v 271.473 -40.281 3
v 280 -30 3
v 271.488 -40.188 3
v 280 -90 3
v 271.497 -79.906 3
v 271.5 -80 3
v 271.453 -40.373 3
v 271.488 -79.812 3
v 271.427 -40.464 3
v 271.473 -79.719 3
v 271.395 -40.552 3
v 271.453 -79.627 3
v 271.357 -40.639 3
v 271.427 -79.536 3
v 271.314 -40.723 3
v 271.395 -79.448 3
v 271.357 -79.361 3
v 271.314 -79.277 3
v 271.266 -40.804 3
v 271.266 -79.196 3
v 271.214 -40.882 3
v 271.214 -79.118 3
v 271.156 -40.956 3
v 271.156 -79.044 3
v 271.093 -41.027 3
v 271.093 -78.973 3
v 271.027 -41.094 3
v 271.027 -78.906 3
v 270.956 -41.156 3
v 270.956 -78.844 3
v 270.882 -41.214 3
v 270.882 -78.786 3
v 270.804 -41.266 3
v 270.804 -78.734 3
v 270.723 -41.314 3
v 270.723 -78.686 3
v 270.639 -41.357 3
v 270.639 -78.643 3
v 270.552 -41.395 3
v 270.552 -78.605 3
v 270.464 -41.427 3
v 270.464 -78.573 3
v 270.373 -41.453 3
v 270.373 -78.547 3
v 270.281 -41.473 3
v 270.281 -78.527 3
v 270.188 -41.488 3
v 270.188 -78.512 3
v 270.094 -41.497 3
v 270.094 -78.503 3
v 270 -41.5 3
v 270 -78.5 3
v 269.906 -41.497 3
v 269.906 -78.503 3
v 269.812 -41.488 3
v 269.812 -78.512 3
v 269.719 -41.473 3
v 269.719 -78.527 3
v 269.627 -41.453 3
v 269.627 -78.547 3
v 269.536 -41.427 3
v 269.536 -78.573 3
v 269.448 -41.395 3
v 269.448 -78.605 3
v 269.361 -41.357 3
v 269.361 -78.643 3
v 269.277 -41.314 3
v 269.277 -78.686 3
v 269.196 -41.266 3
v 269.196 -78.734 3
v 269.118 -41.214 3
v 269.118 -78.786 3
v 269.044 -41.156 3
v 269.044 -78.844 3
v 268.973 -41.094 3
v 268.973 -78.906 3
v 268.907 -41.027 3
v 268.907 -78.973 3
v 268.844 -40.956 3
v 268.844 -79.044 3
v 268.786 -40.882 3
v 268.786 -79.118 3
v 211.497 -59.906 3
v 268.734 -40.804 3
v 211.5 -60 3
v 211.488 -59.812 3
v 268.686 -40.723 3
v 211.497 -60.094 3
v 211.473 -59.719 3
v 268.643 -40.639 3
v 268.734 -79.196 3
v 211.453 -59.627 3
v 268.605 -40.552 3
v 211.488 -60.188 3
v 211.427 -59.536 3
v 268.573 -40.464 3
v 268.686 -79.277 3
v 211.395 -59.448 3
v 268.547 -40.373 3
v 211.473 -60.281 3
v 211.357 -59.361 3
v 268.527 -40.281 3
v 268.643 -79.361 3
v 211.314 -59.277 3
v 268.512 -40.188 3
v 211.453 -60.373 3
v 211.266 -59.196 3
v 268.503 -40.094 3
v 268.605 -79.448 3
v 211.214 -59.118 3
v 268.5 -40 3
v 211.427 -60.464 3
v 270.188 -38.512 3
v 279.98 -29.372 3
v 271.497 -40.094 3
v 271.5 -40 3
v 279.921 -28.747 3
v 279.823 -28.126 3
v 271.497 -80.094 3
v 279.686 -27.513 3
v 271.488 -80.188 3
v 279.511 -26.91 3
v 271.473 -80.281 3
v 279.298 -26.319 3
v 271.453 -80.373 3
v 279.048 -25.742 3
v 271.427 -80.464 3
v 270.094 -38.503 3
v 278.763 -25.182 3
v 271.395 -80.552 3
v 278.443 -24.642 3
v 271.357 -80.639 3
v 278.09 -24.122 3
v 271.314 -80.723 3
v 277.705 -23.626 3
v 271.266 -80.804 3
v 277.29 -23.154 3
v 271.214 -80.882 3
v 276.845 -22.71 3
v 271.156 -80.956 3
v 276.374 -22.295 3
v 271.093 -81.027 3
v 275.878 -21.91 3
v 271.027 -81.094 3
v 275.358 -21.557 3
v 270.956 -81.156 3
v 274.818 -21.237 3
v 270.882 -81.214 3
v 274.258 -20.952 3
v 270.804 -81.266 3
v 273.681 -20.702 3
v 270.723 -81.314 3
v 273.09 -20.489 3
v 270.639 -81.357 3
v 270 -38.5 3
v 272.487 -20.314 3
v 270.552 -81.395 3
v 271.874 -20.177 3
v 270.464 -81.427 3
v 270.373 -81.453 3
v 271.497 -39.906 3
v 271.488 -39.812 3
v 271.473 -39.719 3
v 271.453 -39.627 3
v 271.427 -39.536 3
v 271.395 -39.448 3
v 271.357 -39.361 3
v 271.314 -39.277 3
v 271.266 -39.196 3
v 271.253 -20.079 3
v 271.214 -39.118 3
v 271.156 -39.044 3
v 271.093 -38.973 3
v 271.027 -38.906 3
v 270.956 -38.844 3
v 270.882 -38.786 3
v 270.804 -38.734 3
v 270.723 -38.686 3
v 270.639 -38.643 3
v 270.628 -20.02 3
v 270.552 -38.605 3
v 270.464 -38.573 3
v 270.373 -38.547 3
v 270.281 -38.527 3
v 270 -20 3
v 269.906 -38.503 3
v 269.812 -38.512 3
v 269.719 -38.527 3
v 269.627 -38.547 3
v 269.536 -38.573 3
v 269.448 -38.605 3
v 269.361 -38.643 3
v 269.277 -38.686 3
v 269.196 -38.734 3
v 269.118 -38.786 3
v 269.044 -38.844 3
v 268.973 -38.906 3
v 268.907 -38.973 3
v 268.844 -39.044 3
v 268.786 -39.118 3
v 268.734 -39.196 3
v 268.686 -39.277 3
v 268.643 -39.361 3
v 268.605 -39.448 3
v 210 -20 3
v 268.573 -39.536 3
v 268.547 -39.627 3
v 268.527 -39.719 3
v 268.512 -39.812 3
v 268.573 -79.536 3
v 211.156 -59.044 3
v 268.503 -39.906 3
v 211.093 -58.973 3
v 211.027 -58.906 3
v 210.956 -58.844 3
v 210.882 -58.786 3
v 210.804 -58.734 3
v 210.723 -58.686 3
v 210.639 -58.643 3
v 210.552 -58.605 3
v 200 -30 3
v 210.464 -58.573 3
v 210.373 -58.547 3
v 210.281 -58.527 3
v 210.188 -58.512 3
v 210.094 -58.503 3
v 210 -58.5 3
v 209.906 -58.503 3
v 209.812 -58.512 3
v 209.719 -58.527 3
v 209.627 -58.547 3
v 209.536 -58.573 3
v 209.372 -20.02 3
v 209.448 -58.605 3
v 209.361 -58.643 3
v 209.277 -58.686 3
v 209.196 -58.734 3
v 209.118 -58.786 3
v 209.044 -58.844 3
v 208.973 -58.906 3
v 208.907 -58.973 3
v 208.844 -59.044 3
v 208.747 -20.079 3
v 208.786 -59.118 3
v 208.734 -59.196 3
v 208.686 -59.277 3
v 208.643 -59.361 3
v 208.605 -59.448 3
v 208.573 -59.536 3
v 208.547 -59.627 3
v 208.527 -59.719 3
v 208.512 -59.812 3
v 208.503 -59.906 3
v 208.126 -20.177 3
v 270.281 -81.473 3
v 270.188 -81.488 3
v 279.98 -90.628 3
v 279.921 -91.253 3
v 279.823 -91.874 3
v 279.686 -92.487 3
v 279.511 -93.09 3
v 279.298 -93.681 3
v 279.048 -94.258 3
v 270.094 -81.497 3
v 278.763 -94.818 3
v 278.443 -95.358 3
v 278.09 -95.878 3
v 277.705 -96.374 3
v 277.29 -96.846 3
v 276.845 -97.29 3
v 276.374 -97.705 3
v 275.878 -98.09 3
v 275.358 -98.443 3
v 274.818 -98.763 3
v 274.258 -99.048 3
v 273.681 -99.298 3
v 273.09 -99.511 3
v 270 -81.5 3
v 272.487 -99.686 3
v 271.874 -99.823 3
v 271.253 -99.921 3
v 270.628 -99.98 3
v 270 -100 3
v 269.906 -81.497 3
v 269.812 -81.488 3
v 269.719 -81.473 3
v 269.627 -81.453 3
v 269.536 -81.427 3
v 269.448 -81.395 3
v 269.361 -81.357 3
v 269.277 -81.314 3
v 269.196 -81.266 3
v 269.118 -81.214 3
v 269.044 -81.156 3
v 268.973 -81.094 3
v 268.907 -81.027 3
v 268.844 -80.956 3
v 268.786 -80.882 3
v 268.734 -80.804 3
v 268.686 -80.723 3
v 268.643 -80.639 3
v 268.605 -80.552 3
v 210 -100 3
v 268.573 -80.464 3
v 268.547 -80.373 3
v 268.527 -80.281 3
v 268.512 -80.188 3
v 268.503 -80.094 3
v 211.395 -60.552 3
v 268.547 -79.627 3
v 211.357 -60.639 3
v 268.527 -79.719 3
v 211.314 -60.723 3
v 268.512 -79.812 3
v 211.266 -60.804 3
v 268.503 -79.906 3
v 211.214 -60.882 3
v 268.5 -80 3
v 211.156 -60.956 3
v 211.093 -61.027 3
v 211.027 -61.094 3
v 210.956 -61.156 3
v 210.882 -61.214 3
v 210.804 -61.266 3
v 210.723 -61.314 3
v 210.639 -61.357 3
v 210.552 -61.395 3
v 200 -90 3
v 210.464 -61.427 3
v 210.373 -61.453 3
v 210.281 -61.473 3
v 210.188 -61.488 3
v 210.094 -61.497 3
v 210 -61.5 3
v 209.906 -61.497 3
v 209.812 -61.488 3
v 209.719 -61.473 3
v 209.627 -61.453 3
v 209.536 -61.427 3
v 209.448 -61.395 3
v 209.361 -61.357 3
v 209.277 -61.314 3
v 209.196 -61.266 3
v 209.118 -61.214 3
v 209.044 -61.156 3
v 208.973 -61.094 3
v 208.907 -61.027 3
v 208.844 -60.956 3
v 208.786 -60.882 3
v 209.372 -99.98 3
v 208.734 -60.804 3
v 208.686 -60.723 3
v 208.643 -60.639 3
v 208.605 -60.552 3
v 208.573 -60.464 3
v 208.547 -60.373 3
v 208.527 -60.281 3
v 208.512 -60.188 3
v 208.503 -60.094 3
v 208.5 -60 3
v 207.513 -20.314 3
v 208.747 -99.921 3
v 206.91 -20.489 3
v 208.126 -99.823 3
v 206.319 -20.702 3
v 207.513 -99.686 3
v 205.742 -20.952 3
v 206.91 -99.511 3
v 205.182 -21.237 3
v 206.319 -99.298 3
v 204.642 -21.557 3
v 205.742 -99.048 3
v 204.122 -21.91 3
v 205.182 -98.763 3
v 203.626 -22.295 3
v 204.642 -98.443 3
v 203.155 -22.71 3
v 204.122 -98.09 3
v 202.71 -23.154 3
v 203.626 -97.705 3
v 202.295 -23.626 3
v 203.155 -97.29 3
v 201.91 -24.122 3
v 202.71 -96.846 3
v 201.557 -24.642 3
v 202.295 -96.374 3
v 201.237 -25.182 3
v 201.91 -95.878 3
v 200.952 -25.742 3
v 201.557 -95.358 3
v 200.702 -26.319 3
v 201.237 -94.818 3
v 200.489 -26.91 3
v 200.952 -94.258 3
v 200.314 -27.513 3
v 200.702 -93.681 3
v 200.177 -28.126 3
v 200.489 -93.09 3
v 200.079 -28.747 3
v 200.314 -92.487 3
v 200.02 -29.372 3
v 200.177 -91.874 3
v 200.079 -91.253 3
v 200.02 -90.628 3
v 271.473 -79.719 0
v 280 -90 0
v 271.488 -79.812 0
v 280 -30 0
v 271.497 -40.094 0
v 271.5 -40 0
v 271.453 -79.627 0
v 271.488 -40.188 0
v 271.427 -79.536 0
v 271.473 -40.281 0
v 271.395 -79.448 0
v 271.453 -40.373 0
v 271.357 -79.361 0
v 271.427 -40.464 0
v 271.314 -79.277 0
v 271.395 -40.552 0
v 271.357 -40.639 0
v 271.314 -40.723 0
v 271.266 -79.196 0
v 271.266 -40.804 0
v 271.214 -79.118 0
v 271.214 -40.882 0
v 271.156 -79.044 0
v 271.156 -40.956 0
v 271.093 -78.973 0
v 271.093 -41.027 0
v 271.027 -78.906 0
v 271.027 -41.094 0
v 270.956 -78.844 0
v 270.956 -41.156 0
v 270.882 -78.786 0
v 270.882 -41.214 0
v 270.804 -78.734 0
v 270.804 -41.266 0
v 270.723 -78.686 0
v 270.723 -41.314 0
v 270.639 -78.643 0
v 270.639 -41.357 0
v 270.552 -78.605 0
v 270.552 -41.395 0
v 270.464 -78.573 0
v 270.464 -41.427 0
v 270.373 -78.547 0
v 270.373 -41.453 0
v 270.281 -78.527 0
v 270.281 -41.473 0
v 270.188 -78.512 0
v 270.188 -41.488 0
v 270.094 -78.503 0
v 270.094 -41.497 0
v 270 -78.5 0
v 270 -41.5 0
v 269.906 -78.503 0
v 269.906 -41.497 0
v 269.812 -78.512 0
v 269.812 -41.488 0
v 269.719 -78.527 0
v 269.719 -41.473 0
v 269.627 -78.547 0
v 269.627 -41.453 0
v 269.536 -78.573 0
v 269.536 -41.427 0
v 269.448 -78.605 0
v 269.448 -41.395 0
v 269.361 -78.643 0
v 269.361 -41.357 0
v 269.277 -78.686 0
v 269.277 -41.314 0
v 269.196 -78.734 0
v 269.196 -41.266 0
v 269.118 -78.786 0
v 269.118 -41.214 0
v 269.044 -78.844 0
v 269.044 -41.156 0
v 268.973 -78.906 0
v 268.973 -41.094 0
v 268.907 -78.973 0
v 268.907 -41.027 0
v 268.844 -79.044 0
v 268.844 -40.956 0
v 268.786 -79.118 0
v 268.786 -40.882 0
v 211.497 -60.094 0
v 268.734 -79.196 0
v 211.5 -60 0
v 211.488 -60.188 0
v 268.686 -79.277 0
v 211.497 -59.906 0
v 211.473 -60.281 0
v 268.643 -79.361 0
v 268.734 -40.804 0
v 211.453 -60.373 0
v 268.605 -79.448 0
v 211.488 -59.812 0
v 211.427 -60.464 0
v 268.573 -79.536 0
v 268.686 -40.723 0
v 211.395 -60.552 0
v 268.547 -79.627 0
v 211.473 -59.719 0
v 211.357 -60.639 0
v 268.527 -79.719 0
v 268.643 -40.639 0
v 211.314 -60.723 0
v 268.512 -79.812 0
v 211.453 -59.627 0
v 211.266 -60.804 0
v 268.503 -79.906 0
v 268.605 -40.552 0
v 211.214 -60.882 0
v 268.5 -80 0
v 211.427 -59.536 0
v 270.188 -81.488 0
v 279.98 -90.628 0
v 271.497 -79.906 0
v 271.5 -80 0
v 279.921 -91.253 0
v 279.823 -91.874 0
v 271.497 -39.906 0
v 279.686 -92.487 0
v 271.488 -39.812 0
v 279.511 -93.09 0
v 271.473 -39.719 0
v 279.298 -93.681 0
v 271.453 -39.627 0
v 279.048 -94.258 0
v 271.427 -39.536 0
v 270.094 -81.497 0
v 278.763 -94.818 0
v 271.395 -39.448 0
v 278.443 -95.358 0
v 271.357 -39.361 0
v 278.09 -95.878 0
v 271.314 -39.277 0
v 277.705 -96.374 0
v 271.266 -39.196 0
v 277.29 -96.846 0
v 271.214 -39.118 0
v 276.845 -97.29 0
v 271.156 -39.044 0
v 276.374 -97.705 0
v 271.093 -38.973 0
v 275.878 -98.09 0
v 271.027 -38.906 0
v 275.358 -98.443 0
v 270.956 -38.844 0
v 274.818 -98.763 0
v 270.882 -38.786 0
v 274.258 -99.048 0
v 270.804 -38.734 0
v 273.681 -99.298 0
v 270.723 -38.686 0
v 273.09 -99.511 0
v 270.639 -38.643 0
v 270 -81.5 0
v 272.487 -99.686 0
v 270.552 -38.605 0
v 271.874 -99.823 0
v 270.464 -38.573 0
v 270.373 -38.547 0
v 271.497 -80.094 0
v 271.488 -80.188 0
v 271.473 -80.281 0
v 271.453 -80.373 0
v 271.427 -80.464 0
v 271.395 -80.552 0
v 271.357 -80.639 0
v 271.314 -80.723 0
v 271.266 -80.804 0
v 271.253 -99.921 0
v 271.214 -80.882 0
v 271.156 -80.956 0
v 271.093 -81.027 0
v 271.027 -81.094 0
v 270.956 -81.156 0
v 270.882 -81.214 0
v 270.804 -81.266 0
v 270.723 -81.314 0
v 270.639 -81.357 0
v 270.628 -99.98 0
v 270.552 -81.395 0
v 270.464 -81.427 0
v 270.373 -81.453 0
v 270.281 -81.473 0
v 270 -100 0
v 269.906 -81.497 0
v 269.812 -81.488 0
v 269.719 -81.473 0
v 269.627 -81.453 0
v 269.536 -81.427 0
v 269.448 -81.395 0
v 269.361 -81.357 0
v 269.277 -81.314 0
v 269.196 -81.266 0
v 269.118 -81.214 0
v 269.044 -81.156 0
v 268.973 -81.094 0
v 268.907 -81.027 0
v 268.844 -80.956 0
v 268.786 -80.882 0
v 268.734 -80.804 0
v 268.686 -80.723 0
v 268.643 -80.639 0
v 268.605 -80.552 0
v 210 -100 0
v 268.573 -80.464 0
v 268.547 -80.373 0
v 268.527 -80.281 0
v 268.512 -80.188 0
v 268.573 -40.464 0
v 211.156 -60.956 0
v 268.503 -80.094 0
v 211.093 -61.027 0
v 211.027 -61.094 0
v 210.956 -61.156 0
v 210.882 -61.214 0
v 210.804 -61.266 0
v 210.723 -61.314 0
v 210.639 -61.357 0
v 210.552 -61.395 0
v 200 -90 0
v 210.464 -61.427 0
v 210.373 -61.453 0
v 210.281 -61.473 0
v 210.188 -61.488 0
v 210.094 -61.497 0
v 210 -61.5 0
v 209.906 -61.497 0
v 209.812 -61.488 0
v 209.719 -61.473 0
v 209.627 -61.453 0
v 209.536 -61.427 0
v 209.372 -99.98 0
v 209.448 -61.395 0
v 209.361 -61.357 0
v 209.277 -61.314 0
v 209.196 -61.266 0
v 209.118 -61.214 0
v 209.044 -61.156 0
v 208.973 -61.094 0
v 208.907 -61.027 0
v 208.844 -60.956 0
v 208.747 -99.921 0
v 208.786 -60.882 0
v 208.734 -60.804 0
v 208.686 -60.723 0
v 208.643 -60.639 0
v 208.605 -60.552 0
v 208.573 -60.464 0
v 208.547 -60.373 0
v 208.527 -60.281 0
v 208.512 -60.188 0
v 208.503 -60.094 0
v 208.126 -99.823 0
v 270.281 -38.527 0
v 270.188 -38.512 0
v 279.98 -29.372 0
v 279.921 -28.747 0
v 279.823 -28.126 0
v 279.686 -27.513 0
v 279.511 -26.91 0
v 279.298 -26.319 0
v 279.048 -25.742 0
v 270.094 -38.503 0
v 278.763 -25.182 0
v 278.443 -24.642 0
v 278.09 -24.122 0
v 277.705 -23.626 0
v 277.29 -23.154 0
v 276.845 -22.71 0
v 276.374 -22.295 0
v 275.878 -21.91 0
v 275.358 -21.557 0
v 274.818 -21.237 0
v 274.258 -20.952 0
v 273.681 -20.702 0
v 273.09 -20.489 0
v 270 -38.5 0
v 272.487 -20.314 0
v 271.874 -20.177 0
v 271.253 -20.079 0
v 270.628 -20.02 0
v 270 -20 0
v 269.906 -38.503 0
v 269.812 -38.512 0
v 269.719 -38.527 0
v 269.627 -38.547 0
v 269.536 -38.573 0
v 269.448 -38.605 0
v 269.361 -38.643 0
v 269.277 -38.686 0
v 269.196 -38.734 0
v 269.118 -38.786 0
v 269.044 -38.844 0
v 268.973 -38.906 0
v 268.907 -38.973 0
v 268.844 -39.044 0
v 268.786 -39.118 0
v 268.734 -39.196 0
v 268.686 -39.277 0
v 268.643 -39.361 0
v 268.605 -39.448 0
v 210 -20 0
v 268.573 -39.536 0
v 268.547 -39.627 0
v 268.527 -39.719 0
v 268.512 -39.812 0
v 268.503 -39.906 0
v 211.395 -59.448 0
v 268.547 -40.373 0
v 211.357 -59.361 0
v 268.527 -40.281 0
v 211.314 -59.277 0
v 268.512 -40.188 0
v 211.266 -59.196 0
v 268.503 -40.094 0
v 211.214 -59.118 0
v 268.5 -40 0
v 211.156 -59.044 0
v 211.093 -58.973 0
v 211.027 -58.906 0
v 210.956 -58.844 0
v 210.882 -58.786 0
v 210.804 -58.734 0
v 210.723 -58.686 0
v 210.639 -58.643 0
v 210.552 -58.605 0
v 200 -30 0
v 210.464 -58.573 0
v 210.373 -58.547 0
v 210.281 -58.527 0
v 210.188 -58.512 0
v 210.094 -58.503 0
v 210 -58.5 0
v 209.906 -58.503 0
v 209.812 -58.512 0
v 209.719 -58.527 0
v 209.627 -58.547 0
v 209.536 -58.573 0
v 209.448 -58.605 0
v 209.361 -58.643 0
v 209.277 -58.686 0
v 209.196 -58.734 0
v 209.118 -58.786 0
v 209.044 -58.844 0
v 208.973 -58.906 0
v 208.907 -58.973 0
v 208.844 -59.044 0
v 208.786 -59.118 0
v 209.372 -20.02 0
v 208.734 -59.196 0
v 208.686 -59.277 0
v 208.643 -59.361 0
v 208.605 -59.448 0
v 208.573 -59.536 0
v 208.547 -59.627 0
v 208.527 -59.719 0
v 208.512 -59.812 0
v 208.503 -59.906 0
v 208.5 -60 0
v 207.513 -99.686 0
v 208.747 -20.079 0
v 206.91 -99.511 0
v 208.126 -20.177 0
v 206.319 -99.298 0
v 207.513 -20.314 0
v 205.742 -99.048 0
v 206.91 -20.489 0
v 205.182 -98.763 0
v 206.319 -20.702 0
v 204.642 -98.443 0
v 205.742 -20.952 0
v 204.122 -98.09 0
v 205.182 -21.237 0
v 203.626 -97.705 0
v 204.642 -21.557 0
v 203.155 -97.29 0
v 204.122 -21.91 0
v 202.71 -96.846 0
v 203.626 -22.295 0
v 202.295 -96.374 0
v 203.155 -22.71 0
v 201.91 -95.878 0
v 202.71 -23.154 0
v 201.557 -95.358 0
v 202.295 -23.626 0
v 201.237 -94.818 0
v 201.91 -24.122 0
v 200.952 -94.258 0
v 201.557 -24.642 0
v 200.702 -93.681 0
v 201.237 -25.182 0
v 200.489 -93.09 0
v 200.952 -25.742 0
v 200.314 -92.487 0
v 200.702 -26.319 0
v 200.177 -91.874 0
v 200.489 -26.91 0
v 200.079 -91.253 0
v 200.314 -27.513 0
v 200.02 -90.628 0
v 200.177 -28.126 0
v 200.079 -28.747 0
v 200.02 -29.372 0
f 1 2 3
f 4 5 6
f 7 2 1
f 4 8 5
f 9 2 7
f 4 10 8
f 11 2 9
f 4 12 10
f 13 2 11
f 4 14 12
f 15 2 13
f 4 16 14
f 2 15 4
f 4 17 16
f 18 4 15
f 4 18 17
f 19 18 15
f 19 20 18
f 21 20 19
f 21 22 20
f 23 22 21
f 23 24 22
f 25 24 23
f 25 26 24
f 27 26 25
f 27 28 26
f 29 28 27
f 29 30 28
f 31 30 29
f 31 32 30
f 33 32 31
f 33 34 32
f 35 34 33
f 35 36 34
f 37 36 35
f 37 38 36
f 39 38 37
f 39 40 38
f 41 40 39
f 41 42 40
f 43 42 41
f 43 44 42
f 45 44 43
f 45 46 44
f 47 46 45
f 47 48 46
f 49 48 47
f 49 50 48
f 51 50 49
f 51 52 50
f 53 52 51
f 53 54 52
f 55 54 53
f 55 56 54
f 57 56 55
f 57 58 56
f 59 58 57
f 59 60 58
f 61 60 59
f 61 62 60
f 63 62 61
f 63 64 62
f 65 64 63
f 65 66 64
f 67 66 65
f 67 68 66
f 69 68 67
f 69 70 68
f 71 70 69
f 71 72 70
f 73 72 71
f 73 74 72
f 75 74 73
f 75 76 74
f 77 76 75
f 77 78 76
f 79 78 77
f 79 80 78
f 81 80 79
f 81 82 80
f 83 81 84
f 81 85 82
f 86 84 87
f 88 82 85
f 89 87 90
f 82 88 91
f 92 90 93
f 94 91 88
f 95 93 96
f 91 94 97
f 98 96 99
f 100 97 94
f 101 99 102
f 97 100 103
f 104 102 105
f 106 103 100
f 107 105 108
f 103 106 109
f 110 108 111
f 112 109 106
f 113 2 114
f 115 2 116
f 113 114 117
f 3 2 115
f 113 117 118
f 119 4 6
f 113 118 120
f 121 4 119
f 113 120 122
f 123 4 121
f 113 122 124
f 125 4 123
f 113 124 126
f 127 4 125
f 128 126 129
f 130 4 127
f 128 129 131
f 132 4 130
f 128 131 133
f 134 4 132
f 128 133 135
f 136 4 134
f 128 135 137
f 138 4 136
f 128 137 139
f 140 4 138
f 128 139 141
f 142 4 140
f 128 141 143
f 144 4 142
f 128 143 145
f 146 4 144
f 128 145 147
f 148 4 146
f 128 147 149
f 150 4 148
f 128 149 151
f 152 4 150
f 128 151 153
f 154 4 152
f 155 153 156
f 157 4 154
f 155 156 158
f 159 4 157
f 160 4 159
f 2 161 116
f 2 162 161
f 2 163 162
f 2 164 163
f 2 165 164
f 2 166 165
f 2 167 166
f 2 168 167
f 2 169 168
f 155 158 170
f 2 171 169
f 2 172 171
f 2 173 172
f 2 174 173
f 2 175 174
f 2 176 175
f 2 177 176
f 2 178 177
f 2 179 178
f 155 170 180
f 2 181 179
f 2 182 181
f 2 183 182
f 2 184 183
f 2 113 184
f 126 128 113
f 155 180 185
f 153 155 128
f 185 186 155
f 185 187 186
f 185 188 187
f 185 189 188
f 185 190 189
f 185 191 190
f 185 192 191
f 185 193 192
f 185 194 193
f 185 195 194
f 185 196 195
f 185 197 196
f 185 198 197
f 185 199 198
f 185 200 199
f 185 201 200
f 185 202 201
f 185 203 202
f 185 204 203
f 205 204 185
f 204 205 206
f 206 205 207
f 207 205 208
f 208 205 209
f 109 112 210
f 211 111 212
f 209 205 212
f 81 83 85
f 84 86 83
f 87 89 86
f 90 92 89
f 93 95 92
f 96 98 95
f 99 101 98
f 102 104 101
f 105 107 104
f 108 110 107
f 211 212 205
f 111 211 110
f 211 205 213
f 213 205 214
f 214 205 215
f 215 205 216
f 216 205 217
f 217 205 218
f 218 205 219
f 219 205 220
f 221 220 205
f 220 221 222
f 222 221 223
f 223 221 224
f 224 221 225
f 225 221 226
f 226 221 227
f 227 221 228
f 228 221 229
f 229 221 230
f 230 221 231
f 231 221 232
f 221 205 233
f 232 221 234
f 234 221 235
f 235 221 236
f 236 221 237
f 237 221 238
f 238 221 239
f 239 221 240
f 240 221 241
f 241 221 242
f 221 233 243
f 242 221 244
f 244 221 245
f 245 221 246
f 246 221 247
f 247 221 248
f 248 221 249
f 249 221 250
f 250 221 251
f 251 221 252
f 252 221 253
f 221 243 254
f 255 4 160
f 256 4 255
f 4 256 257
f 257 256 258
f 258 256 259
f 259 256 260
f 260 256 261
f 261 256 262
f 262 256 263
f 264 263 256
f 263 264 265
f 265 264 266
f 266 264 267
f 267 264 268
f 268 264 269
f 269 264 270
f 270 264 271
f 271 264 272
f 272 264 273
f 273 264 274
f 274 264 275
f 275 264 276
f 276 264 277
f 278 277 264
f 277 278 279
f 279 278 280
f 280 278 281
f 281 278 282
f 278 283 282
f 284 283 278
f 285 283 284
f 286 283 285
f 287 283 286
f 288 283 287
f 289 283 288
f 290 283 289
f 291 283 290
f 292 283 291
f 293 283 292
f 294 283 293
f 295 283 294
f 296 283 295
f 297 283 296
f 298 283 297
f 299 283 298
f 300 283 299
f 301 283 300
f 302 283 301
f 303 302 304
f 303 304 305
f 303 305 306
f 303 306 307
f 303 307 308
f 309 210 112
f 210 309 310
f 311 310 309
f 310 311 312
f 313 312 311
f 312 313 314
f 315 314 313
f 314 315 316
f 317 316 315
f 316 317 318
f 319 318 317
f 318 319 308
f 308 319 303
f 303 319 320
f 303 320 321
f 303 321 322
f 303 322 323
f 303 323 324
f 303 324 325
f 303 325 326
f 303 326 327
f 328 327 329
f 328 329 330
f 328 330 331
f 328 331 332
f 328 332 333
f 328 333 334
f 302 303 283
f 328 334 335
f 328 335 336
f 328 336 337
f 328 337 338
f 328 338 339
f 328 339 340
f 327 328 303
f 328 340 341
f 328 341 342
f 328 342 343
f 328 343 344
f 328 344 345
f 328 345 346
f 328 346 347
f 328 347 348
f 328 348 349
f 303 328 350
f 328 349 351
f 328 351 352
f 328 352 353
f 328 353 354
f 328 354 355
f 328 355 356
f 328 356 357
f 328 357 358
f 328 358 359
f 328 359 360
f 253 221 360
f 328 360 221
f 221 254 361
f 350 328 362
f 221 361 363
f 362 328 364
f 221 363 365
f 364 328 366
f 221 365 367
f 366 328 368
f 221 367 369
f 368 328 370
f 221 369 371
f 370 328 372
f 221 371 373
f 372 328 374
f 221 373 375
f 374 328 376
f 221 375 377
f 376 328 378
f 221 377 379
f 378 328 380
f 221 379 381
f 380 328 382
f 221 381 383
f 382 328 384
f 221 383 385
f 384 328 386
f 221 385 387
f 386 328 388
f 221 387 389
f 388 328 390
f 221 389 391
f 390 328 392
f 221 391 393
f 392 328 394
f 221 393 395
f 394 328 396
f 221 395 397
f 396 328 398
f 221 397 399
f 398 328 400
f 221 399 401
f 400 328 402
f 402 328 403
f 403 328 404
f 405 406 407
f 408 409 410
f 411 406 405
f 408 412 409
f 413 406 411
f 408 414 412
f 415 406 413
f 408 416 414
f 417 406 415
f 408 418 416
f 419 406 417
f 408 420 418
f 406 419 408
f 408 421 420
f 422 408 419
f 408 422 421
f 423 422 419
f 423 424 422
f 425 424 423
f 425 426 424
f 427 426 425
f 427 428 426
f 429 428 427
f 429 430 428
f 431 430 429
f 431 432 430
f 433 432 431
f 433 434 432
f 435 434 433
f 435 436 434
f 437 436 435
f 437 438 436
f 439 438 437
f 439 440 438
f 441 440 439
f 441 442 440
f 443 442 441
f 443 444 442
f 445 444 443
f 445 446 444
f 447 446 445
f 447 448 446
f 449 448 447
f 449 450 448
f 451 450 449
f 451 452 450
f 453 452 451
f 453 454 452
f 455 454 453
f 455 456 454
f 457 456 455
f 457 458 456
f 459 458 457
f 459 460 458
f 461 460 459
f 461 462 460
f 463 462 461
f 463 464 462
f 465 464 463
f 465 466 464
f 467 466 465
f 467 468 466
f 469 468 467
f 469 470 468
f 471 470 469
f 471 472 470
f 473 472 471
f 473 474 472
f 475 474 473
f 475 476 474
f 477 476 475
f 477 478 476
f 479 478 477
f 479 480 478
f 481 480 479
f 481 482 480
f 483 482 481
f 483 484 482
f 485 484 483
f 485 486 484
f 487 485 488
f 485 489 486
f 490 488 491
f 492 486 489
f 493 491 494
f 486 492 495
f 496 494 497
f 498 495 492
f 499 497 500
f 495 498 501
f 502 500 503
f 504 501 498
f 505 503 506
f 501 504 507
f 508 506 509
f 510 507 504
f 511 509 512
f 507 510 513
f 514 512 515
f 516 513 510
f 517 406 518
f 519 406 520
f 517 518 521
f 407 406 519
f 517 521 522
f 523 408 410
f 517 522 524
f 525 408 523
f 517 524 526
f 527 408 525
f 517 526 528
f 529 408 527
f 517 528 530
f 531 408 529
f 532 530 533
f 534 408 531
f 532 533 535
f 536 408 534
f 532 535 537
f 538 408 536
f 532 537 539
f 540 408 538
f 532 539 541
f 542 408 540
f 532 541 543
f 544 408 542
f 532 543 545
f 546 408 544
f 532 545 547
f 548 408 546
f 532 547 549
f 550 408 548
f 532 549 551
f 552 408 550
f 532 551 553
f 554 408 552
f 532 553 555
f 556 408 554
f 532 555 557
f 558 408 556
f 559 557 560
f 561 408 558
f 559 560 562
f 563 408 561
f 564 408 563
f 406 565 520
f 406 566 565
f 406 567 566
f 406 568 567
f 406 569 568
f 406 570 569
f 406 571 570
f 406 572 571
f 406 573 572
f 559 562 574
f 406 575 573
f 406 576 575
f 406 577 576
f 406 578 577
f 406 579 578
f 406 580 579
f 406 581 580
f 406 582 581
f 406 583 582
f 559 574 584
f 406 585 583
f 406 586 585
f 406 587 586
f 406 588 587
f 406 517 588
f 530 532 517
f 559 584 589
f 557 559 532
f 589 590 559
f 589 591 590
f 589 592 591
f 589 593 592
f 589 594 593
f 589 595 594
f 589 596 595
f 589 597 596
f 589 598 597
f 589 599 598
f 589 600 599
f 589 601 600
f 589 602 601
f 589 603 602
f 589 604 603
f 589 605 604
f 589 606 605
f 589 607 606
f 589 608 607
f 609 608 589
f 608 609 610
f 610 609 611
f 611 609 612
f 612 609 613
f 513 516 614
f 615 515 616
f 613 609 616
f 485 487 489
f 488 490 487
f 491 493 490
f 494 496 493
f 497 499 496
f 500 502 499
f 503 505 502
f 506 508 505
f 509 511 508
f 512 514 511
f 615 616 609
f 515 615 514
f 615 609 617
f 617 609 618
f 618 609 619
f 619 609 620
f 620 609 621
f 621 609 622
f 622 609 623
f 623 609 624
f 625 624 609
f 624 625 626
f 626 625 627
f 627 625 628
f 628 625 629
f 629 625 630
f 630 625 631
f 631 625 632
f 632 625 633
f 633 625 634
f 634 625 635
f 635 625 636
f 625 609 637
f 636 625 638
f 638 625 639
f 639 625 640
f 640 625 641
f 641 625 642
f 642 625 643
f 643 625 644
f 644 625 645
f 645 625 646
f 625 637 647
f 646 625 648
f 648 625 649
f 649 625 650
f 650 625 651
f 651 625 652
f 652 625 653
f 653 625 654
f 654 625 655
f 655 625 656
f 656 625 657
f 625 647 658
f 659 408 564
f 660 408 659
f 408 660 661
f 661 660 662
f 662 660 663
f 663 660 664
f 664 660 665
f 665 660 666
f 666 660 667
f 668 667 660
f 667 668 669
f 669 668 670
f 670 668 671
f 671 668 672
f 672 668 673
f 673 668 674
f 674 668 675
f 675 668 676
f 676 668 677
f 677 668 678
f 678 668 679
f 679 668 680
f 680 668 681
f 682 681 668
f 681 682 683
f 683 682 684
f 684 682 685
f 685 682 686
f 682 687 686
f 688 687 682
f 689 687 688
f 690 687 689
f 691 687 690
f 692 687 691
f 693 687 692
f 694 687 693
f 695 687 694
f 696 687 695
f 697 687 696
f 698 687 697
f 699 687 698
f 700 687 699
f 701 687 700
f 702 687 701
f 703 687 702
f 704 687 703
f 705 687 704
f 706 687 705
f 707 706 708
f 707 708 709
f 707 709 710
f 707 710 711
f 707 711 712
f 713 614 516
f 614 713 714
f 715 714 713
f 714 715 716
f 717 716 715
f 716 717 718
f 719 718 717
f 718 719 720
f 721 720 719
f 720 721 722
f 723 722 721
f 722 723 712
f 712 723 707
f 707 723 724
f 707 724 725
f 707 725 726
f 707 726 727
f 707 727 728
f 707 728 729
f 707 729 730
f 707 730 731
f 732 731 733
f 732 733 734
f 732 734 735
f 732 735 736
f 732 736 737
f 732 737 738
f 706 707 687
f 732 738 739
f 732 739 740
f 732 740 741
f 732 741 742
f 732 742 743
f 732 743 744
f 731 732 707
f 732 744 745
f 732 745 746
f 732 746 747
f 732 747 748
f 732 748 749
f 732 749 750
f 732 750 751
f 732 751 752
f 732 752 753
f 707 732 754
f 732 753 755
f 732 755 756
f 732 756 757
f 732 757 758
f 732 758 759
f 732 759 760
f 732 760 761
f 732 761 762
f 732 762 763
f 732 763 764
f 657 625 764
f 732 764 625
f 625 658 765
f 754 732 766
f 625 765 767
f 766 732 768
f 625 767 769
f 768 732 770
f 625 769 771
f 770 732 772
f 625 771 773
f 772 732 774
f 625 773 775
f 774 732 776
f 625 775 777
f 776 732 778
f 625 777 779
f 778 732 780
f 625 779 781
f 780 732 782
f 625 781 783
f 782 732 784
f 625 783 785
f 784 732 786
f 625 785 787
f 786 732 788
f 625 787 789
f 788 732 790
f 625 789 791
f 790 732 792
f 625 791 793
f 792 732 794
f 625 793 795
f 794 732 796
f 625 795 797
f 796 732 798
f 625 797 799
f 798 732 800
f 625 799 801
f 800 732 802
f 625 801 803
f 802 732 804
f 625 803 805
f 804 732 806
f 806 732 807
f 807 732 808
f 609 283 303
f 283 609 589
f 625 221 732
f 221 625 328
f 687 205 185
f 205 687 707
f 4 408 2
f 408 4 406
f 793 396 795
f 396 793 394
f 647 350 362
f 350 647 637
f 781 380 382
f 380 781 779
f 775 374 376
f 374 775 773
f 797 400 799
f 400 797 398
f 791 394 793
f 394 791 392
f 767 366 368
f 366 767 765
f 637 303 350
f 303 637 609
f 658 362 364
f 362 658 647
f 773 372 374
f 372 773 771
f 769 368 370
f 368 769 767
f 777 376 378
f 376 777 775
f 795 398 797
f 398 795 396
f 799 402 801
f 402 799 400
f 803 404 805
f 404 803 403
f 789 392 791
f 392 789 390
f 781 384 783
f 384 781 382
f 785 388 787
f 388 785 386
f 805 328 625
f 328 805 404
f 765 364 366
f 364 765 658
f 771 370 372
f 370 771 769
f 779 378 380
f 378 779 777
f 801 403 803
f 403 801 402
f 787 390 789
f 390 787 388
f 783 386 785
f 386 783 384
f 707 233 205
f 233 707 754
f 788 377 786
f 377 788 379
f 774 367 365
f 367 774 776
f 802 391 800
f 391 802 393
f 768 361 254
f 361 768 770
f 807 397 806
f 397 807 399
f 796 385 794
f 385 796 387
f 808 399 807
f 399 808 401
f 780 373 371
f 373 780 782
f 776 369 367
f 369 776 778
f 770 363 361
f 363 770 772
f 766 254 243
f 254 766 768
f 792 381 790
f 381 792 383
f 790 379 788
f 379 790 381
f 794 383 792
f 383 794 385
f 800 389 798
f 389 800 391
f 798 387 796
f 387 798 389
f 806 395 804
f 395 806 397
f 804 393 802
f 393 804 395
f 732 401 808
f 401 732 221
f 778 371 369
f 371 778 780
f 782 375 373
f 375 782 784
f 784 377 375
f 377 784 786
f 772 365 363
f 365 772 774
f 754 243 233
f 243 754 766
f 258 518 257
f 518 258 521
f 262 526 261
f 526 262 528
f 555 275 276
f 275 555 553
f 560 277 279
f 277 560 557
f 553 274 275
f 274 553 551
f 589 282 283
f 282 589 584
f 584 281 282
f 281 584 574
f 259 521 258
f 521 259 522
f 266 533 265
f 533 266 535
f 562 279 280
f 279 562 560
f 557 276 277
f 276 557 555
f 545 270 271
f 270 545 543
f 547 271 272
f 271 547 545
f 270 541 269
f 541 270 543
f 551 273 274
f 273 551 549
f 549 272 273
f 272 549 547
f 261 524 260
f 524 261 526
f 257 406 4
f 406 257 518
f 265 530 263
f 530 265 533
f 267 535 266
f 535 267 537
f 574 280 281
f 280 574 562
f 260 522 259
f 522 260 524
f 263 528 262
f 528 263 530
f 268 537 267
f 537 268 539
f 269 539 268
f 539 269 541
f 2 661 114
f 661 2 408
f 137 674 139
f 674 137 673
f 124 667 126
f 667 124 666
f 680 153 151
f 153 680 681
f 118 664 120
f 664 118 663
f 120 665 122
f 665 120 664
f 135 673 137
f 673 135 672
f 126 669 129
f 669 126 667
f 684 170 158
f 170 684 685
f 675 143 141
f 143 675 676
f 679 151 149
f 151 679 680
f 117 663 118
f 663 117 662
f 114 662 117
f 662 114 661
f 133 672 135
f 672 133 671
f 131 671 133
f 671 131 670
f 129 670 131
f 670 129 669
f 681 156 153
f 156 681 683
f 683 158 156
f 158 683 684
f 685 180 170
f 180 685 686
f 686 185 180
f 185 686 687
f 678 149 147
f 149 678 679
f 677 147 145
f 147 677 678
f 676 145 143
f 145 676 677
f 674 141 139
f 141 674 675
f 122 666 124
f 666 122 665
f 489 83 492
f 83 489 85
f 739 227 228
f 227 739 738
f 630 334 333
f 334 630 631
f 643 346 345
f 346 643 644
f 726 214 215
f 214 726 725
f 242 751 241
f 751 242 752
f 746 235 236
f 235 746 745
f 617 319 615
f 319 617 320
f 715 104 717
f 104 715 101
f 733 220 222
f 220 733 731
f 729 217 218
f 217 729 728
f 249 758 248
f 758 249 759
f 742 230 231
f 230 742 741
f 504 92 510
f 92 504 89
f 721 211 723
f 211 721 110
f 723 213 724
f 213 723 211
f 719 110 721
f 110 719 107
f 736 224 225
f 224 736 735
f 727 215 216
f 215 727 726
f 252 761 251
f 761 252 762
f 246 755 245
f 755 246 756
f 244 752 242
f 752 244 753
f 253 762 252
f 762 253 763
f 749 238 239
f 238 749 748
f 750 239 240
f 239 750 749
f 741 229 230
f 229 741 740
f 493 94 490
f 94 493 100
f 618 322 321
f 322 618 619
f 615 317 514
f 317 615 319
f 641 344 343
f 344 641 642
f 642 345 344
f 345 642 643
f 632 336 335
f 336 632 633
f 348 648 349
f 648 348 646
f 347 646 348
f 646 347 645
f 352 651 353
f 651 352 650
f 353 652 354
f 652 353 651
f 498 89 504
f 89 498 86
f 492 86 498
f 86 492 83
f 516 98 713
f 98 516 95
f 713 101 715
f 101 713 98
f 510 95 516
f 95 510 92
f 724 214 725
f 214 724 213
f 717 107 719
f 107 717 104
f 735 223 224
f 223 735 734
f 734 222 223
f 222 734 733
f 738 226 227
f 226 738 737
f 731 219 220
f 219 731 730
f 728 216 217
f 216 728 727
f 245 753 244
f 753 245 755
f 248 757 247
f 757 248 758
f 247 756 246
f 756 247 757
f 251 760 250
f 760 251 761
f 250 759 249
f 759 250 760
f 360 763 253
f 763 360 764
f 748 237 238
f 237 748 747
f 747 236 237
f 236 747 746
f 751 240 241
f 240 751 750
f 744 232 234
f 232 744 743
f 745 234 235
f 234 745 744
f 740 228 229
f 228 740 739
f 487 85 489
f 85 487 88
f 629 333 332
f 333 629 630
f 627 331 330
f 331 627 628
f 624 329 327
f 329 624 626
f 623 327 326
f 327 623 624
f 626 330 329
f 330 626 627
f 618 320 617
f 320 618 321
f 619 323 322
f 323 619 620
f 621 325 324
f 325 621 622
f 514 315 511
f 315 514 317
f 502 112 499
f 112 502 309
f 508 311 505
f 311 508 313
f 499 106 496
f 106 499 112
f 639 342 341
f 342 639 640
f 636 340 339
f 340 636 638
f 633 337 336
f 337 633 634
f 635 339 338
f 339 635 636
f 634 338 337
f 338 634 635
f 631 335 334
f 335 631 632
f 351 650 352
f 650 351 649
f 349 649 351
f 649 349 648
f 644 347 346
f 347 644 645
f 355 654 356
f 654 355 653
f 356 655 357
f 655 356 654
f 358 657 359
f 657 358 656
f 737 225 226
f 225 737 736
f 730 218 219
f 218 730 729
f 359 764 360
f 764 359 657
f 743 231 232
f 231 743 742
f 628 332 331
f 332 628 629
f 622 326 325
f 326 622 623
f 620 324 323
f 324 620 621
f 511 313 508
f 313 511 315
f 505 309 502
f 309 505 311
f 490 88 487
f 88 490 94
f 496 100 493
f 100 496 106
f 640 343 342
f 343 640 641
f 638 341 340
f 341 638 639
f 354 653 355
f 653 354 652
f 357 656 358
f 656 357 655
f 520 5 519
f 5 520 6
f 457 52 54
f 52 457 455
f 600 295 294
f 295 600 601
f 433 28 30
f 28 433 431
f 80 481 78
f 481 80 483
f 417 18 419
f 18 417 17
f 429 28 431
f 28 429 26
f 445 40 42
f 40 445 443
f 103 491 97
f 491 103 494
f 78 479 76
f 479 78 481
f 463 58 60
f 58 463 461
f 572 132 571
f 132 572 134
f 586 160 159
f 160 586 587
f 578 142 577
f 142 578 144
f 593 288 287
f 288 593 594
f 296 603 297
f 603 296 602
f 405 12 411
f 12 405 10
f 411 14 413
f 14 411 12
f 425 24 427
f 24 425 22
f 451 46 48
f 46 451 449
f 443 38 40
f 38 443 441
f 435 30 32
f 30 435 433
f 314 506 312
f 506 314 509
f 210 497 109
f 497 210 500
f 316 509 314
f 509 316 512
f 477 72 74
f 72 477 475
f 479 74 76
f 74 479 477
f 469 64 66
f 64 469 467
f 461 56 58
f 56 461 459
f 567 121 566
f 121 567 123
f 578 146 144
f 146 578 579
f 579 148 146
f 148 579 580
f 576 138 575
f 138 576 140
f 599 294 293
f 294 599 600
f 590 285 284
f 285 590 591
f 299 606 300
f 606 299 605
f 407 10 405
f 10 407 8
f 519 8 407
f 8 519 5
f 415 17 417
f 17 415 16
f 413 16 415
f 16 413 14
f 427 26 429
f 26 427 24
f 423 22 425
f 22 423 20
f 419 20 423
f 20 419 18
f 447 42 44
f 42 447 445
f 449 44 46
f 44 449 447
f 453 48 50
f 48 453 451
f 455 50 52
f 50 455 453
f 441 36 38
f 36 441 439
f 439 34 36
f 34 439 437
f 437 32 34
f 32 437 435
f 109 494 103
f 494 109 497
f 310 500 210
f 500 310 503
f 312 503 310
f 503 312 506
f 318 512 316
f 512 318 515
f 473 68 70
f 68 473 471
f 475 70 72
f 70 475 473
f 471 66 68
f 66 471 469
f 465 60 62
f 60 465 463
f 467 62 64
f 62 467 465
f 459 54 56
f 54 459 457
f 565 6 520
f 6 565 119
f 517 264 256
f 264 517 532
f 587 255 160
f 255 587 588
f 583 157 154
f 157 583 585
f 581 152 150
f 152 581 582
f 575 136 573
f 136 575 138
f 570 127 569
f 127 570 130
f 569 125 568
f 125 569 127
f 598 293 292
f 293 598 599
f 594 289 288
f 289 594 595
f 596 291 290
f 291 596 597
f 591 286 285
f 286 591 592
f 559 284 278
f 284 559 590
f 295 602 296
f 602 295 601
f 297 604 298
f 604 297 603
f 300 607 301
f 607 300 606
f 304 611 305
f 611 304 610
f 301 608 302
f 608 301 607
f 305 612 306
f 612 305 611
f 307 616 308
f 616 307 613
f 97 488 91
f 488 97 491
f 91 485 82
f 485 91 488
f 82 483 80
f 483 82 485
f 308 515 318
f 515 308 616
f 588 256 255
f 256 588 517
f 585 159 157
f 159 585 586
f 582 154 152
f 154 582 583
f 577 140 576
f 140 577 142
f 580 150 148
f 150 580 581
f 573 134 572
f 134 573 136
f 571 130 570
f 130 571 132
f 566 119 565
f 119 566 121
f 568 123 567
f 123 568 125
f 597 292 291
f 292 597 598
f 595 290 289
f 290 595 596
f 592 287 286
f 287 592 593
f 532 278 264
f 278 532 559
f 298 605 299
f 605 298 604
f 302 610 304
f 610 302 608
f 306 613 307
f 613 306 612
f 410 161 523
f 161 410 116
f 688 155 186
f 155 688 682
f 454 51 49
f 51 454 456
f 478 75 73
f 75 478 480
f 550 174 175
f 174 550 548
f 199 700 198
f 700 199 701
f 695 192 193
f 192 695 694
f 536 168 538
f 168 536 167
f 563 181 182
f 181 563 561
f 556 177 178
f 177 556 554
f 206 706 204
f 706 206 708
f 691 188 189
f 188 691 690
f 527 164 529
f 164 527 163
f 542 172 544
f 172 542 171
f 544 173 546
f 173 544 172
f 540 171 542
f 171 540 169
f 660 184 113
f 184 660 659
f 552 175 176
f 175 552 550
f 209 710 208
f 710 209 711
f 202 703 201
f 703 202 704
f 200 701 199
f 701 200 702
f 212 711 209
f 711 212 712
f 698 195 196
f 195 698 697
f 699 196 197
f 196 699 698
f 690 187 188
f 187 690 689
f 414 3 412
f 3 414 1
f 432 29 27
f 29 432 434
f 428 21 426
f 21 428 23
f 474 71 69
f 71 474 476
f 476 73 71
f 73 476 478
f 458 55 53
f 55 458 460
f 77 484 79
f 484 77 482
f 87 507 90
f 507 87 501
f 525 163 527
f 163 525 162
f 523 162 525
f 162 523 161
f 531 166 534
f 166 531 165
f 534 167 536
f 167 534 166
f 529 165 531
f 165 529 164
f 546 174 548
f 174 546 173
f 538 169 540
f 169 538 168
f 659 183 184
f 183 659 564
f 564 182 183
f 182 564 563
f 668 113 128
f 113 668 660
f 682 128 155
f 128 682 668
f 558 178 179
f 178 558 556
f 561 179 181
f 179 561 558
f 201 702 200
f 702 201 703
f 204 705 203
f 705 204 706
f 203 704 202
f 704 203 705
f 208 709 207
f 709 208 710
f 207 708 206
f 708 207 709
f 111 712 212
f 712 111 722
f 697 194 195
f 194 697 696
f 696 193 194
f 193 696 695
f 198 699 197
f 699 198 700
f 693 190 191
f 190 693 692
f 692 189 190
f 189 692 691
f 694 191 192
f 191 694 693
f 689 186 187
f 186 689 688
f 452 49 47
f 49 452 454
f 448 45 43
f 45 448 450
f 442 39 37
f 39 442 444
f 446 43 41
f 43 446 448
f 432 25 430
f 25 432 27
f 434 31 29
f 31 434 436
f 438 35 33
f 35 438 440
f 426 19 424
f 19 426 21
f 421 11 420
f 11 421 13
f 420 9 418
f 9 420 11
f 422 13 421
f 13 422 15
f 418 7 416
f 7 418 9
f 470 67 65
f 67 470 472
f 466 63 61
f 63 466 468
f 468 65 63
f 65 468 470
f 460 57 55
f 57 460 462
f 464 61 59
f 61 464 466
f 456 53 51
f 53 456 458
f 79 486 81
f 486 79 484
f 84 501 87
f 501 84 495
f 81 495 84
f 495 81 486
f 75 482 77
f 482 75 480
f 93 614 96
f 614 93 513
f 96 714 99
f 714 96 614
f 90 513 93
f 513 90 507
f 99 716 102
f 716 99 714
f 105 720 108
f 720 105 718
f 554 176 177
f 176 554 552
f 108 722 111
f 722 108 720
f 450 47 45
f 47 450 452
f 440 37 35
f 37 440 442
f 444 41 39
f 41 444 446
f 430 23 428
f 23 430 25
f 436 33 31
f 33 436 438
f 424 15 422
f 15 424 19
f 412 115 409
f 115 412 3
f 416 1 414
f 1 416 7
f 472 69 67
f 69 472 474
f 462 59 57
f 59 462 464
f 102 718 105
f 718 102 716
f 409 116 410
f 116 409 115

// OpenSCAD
//bottom part
rotate([0, 0, 0])  translate([200, -100, 0]) 
difference() {
    union(){
        rotate([0, 0, 0])  translate([10, 10, 0]) cube([60,60,3]);
        rotate([0, 0, 0])  translate([10, 0, 0]) cube([60,10,3]);
        rotate([0, 0, 0])  translate([0, 10, 0]) cube([10,60,3]);
        rotate([0, 0, 0])  translate([10, 70, 0]) cube([60,10,3]);
        rotate([0, 0, 0])  translate([70, 10, 0]) cube([10,60,3]);
        rotate([0, 0, 0])  translate([10, 10, 0]) cylinder(3,10,10,$fn=100);
        rotate([0, 0, 0])  translate([10, 70, 0]) cylinder(3,10,10,$fn=100);
        rotate([0, 0, 0])  translate([70, 10, 0]) cylinder(3,10,10,$fn=100);
        rotate([0, 0, 0])  translate([70, 70, 0]) cylinder(3,10,10,$fn=100);
    }
    rotate([0, 0, 0])  translate([10, 40, -1]) cylinder(7,1.5,1.5,$fn=100);
    rotate([0, 0, 0])  translate([70, 20, -1]) cylinder(7,1.5,1.5,$fn=100);
    rotate([0, 0, 0])  translate([70, 60, -1]) cylinder(7,1.5,1.5,$fn=100);
}
